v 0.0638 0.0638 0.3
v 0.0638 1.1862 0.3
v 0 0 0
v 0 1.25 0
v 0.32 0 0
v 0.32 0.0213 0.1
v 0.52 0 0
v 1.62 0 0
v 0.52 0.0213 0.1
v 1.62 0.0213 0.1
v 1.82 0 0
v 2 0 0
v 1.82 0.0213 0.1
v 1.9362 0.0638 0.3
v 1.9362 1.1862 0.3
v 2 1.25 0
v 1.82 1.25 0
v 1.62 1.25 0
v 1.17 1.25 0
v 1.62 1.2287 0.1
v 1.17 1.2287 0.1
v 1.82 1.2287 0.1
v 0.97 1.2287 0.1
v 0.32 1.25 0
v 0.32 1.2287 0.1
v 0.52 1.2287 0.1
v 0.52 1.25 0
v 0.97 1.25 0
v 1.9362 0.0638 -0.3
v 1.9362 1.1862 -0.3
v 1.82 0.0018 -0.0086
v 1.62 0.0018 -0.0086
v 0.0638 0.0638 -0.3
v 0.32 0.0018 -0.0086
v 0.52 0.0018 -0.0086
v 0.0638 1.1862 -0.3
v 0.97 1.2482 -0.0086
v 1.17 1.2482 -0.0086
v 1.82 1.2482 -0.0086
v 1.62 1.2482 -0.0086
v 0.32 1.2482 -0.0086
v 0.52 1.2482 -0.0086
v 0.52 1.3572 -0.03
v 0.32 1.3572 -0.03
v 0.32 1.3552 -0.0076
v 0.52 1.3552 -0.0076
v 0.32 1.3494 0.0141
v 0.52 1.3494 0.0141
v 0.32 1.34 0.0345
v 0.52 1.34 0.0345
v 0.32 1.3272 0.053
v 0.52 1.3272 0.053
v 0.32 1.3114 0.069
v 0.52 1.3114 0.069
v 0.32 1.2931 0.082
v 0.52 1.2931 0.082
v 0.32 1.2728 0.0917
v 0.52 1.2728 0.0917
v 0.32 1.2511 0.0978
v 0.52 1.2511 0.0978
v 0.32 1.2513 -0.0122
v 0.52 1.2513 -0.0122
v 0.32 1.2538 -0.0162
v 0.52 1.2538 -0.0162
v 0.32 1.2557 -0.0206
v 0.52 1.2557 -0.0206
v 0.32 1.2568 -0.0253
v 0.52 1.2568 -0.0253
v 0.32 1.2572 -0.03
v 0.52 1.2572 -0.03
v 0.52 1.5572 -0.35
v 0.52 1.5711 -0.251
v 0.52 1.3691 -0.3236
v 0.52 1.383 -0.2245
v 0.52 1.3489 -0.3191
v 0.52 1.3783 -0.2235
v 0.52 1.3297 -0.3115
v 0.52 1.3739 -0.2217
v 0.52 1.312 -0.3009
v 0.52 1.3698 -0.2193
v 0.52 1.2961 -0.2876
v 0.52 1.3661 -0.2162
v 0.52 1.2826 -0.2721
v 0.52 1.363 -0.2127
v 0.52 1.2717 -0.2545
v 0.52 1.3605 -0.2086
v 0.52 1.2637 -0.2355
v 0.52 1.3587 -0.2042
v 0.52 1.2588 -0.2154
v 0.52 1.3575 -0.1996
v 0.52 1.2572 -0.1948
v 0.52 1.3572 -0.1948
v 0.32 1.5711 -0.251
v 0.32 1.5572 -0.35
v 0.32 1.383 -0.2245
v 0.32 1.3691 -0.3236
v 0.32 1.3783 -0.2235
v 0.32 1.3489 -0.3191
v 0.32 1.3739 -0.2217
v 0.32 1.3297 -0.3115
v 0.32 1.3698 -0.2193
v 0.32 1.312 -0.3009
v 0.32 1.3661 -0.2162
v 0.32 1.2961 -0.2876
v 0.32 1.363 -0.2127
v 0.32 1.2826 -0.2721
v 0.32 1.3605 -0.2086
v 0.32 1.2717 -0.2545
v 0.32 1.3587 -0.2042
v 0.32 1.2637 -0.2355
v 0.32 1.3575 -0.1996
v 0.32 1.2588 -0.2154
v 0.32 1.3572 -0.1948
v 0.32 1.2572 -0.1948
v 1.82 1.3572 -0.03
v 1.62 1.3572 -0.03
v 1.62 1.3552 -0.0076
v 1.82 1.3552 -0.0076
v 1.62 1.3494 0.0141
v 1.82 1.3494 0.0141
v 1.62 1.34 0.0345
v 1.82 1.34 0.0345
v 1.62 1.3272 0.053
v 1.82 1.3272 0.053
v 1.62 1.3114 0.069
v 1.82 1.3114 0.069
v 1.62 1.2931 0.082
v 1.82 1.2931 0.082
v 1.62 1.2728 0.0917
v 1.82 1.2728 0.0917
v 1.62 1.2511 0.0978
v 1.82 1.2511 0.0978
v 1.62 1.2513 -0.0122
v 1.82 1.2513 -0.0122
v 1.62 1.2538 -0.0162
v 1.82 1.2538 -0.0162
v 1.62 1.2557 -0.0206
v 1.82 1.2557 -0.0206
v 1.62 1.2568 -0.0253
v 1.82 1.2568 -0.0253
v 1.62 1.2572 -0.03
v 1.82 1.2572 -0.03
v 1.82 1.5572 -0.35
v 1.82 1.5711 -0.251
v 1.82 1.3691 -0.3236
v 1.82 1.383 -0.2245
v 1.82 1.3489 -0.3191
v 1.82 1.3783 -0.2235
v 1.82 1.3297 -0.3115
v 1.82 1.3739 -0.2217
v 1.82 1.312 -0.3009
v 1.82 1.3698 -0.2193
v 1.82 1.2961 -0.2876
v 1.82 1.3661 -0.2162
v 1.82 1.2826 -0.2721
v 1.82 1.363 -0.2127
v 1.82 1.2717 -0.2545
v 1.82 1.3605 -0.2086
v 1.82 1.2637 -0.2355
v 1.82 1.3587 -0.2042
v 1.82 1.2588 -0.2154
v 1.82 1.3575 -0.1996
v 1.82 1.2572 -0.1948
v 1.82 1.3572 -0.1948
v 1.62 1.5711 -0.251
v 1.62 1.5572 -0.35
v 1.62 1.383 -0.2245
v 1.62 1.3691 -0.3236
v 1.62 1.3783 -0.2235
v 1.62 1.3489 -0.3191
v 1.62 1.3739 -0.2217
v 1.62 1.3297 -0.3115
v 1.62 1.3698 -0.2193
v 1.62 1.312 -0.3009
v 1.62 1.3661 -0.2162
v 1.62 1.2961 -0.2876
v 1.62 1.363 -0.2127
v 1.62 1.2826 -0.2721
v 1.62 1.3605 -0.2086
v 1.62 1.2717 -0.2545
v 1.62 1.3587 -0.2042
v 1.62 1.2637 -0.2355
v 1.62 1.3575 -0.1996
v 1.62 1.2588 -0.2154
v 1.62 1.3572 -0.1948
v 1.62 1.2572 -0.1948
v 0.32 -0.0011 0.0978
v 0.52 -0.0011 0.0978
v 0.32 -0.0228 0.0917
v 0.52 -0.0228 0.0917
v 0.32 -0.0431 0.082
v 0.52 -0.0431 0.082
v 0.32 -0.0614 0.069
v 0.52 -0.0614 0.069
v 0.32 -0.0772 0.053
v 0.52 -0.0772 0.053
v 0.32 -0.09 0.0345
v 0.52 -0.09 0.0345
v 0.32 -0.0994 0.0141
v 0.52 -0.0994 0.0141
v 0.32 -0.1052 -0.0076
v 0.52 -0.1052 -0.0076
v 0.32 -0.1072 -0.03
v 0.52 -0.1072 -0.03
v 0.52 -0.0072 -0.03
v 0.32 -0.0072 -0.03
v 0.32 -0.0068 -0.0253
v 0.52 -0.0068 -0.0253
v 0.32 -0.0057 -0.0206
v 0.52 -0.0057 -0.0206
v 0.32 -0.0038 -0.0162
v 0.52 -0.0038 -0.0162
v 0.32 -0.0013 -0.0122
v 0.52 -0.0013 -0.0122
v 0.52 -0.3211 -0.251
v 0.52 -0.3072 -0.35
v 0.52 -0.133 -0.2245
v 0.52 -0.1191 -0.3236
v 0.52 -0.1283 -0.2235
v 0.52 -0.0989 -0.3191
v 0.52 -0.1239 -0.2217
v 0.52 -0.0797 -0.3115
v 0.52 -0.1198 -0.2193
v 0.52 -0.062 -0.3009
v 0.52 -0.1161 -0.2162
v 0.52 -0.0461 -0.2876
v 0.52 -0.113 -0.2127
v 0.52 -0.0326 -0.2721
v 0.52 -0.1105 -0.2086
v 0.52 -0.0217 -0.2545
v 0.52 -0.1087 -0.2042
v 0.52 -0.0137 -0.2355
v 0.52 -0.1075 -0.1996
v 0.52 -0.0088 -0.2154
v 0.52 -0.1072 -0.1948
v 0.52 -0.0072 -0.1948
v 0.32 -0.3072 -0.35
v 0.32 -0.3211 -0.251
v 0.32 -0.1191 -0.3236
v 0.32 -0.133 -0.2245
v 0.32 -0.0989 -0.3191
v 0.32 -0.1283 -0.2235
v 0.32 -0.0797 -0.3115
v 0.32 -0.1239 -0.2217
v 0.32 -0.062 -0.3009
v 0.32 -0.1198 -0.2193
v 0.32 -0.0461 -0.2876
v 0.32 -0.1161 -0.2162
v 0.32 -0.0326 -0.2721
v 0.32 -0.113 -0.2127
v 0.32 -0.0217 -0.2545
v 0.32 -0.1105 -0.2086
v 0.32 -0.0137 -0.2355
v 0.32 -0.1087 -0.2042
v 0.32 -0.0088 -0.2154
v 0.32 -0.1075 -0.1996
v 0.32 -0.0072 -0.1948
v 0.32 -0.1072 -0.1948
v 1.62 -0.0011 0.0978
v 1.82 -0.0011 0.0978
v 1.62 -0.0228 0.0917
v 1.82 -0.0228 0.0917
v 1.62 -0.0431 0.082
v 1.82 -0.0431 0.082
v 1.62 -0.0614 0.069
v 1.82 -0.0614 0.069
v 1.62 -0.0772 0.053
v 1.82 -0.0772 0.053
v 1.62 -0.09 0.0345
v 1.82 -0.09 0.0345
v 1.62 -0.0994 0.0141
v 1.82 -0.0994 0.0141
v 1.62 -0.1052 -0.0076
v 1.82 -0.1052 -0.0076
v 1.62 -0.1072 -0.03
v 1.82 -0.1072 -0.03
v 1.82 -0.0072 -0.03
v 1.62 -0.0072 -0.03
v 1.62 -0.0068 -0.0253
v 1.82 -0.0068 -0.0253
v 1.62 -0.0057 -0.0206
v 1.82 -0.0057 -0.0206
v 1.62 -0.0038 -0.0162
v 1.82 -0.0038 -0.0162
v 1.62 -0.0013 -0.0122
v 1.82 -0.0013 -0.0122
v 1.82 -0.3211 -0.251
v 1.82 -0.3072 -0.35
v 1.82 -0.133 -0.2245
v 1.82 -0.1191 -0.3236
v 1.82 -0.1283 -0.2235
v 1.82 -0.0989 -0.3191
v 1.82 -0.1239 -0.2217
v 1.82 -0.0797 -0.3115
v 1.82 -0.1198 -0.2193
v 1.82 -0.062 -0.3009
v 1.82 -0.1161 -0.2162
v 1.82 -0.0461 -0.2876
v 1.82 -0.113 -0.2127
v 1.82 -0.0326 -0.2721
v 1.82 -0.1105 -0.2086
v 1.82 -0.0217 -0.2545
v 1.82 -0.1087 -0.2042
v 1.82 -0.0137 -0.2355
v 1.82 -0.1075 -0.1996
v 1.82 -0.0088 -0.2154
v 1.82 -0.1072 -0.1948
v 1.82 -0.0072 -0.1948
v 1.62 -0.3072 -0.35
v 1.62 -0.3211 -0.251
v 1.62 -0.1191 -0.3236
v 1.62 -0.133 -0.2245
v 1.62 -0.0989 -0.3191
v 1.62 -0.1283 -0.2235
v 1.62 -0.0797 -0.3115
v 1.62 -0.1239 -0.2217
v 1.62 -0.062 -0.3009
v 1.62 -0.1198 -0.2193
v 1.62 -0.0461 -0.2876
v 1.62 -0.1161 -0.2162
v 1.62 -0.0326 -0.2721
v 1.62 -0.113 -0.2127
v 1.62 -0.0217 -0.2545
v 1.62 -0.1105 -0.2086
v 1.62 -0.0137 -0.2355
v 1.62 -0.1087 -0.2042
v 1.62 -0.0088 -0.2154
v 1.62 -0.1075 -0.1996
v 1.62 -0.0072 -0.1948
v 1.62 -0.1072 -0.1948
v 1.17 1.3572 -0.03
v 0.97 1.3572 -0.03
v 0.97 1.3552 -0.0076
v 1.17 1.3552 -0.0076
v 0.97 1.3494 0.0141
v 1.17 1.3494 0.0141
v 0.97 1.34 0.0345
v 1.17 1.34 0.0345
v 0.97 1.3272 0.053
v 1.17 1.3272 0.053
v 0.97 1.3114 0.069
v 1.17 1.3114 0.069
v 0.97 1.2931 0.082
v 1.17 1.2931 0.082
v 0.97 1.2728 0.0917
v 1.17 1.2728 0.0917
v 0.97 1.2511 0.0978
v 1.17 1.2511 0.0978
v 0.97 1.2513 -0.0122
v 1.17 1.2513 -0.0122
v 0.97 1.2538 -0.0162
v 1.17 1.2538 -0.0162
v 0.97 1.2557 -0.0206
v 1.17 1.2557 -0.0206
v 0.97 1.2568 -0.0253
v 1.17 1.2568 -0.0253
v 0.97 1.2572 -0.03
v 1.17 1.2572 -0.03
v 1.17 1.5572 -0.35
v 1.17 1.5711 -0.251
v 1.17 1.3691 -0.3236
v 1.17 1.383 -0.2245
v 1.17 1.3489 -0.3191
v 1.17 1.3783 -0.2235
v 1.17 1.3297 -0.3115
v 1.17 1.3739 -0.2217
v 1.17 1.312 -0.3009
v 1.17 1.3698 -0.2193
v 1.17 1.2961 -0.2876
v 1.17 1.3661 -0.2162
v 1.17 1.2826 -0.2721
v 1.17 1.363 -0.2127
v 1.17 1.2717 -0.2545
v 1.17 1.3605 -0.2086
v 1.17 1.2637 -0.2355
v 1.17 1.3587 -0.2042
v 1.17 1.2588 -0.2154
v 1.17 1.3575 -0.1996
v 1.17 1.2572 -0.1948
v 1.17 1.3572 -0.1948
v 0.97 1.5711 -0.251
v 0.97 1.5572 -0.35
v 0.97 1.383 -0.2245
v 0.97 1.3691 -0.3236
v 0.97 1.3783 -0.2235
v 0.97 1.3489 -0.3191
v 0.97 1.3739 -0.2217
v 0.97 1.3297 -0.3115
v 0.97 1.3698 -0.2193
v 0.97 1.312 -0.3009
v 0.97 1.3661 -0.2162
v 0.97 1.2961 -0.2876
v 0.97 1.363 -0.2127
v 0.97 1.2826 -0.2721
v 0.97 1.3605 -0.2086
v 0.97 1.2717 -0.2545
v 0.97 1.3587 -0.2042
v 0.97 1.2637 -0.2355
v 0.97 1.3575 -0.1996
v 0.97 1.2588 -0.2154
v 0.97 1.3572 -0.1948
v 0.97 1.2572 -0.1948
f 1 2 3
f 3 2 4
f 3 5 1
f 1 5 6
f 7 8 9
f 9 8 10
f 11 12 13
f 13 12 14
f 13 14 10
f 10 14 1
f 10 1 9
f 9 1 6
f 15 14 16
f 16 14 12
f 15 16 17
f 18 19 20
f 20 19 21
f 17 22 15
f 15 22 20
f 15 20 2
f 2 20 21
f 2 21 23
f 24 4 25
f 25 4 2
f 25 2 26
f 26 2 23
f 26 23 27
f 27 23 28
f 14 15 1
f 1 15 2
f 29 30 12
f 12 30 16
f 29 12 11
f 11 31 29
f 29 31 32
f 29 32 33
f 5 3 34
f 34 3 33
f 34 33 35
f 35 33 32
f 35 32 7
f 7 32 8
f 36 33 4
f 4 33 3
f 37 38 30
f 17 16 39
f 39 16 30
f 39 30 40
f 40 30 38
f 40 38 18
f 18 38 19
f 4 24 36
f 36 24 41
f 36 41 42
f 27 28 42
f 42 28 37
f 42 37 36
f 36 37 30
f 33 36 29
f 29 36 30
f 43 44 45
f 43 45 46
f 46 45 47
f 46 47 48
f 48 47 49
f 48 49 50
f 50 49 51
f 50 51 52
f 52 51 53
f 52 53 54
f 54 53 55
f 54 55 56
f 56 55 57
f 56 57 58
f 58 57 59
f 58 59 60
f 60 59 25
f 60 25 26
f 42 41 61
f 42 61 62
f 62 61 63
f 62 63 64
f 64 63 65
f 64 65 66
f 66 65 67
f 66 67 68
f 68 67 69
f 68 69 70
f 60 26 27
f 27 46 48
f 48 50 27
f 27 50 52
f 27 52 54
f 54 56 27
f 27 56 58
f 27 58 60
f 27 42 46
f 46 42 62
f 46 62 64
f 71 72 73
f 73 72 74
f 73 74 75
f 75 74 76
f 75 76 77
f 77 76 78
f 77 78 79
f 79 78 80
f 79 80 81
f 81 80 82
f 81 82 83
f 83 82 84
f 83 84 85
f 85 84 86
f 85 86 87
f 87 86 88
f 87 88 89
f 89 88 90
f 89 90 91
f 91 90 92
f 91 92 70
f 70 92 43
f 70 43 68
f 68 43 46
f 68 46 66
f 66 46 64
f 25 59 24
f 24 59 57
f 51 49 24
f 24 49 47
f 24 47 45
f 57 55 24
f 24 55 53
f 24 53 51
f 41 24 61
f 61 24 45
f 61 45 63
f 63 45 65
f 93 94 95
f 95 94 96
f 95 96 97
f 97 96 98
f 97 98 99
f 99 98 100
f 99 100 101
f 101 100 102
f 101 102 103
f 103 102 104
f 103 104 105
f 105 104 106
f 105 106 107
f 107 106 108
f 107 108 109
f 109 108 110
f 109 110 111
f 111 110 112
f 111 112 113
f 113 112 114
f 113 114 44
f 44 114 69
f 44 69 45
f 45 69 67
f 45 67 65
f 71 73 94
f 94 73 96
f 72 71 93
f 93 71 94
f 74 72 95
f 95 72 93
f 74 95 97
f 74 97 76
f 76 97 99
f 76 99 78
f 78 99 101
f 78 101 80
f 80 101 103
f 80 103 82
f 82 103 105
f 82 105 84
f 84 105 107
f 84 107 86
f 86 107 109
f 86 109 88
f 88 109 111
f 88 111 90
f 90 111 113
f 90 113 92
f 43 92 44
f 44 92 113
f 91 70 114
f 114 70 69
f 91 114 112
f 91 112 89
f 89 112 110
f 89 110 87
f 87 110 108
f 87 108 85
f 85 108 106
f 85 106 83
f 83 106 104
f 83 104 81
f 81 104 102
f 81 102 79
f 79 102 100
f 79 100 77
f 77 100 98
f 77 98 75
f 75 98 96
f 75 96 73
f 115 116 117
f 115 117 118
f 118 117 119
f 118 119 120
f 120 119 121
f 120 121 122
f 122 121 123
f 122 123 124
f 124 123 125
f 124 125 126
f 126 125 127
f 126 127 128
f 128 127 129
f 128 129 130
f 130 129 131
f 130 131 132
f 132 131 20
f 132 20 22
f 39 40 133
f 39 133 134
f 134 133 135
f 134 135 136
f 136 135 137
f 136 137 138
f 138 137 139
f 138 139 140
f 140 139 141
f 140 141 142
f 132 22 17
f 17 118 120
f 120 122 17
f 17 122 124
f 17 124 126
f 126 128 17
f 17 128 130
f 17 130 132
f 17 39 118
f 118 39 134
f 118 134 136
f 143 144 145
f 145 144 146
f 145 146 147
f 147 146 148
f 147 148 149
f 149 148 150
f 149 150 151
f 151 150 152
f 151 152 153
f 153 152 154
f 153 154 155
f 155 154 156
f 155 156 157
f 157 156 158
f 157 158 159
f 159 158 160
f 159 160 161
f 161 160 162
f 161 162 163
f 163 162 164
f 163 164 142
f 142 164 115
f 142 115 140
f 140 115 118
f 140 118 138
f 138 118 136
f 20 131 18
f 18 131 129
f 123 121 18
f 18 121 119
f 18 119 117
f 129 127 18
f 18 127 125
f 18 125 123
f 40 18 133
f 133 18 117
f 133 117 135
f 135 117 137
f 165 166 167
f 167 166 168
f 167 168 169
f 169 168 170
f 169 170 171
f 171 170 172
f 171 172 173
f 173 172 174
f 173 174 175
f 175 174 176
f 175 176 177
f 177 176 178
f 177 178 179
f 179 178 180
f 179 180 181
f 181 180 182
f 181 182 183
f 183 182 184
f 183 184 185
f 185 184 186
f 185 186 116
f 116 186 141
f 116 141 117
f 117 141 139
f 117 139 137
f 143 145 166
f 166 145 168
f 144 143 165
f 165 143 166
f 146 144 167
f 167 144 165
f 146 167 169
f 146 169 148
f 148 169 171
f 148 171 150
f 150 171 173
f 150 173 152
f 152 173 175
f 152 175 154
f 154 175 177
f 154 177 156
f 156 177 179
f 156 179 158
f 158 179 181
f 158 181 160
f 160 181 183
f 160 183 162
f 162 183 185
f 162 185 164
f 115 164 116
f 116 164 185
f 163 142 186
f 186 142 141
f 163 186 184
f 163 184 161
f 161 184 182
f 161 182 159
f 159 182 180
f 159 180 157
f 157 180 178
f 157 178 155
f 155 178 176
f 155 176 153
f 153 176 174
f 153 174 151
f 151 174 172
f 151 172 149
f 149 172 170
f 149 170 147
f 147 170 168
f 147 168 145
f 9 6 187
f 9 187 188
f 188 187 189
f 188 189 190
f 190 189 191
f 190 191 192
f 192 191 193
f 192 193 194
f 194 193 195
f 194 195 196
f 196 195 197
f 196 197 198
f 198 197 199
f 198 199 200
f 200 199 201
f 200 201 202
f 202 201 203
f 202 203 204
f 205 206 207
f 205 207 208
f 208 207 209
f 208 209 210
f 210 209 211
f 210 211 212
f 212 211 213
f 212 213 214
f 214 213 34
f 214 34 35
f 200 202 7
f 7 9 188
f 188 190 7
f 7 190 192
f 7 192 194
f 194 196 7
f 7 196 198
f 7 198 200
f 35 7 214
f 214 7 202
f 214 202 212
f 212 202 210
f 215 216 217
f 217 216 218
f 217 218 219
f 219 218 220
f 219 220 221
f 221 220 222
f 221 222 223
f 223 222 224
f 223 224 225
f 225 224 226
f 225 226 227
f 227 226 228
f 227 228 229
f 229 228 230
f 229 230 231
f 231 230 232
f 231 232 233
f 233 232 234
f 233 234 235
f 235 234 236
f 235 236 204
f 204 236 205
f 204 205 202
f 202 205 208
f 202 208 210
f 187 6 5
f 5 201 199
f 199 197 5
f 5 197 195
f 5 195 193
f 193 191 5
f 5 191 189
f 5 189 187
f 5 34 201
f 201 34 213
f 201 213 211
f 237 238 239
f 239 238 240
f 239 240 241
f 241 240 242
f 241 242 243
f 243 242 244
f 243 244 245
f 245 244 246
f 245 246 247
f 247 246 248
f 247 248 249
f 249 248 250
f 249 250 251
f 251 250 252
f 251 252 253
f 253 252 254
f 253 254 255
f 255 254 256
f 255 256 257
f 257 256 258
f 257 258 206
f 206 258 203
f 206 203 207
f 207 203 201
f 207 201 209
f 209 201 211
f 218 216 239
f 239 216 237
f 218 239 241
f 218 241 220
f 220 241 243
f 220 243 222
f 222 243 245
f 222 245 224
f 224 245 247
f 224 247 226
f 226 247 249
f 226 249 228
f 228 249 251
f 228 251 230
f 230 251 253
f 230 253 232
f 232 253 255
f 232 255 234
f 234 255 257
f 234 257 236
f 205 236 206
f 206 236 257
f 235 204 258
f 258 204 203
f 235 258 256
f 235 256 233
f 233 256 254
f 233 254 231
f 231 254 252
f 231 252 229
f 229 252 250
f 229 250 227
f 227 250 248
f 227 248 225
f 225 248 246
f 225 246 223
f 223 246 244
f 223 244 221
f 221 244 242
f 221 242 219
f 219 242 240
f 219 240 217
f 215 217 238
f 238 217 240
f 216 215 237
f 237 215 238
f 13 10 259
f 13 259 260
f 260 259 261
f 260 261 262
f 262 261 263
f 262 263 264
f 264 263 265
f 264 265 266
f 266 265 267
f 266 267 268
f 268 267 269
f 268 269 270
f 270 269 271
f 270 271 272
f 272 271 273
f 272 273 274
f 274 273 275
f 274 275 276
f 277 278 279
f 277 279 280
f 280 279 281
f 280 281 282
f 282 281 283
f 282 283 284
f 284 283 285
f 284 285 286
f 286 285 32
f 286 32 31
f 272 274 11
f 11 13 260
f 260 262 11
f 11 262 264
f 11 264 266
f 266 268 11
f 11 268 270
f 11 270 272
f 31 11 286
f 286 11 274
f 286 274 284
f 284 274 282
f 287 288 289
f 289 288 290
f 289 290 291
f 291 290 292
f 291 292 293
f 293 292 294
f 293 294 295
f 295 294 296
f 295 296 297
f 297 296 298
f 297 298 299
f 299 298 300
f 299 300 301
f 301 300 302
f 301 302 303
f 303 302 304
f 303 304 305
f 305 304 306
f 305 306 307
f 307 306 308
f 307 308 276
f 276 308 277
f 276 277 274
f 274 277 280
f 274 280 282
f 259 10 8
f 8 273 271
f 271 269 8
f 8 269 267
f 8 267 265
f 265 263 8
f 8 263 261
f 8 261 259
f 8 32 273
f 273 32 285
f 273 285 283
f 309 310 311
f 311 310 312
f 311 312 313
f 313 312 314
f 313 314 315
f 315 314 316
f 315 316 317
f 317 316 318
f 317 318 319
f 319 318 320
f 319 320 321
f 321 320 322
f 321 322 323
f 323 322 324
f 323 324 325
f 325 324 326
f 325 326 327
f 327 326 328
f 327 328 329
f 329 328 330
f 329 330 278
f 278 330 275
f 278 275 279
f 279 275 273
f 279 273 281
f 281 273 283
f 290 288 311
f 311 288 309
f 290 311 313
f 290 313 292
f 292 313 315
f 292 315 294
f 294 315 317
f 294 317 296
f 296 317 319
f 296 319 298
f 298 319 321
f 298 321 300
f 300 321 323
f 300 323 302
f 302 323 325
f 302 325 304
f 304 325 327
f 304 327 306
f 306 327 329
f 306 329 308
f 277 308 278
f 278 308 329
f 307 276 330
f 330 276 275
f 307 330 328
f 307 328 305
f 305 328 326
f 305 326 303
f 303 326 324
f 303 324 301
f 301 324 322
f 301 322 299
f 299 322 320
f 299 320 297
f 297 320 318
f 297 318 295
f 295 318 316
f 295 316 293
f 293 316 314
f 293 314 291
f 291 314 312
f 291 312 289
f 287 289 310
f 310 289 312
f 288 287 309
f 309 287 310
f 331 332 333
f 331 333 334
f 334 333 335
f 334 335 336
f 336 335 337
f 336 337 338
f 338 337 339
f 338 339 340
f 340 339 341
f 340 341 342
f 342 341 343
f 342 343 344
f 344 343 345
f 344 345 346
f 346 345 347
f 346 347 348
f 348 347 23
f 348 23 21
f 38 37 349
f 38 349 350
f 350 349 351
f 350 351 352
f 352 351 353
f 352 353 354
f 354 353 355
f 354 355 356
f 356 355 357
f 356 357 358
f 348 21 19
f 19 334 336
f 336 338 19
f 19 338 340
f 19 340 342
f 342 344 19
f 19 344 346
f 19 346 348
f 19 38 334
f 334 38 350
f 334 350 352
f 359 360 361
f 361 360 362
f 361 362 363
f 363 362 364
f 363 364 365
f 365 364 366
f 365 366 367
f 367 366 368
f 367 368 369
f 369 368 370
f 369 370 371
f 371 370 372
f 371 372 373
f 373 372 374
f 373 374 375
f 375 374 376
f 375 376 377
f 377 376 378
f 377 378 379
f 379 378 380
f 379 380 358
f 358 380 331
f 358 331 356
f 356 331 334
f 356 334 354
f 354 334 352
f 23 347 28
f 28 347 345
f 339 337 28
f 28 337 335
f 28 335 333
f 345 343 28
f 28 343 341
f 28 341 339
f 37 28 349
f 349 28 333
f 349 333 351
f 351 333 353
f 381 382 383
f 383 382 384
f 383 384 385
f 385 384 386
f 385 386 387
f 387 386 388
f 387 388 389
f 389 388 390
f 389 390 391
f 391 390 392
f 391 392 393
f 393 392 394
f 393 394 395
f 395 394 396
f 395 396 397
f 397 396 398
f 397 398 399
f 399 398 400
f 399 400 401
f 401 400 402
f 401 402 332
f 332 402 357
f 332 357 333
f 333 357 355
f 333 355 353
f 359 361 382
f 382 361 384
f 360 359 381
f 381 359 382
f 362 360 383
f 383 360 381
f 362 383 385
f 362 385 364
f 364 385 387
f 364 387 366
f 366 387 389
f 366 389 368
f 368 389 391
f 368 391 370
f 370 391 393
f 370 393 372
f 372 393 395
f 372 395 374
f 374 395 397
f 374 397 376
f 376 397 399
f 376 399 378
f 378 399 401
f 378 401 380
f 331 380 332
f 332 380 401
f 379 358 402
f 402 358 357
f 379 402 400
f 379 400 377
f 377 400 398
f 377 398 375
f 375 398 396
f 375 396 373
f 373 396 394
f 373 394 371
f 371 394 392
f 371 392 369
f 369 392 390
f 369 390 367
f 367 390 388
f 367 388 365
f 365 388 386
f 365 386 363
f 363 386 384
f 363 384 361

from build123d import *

# Parameters (mm, degrees)
SKETCH1_W            = 2
SKETCH1_H            = 1.25
BOSS_EXTRUDE1_DEPTH  = 0.3
BOSS_EXTRUDE1_TAPER  = 12
SKETCH2_W            = 2
SKETCH2_H            = 1.25
BOSS_EXTRUDE2_DEPTH  = 0.3
BOSS_EXTRUDE2_TAPER  = 12
EXTRUDE_THIN1_DEPTH  = 0.1
LPATTERN1_COUNT      = 3
LPATTERN1_PITCH      = 0.65
MIRROR1_COPY_1_DEPTH = 0.1
LPATTERN2_COUNT      = 2
LPATTERN2_PITCH      = 0.65


with BuildPart() as part:
    # Sketch1 → Boss-Extrude1 (new body)
    with BuildSketch(Plane.XY):
        with Locations((1, 0.625)):
            Rectangle(SKETCH1_W, SKETCH1_H)
    extrude(amount=BOSS_EXTRUDE1_DEPTH, taper=BOSS_EXTRUDE1_TAPER)

    # Sketch2 → Boss-Extrude2 (add)
    with BuildSketch(Plane(origin=(0, 0, 0), x_dir=(-1, 0, 0), z_dir=(0, 0, -1))):
        with Locations((-1, 0.625)):
            Rectangle(SKETCH2_W, SKETCH2_H)
    extrude(amount=BOSS_EXTRUDE2_DEPTH, taper=BOSS_EXTRUDE2_TAPER)

    # Sketch4 → Extrude-Thin1 (add, symmetric)
    with BuildSketch(Plane(origin=(0.42, 0, 0), x_dir=(0, 0, -1), z_dir=(1, 0, 0))):
        with BuildLine():
            Line((0, 1.218116516), (0, 1.227154368))
            ThreePointArc((0, 1.227154368), (0.008786797, 1.248367571), (0.03, 1.257154368))
            Line((0.03, 1.257154368), (0.194830474, 1.257154368))
            ThreePointArc((0.194830474, 1.257154368), (0.280118147, 1.289042122), (0.323565323, 1.369061865))
            Line((0.323565323, 1.369061865), (0.35, 1.557154368))
            Line((0.35, 1.557154368), (0.250973193, 1.571071678))
            Line((0.250973193, 1.571071678), (0.224538516, 1.382979175))
            ThreePointArc((0.224538516, 1.382979175), (0.214512245, 1.36451308), (0.194830474, 1.357154368))
            Line((0.194830474, 1.357154368), (0.03, 1.357154368))
            ThreePointArc((0.03, 1.357154368), (-0.061923882, 1.319078249), (-0.1, 1.227154368))
            Line((-0.1, 1.227154368), (-0.1, 1.218116516))
            Line((-0.1, 1.218116516), (0, 1.218116516))
        make_face()
    extrude_thin1 = extrude(amount=EXTRUDE_THIN1_DEPTH, both=True)

    # LPattern1: Extrude-Thin1 ×3, 1 skipped
    with Locations(*[(i * LPATTERN1_PITCH, 0, 0) for i in range(1, LPATTERN1_COUNT) if i not in (1,)]):
        add(extrude_thin1)

    # Mirror1: Extrude-Thin1 across plane
    add(extrude_thin1.mirror(Plane.ZX.offset(0.625)))

    # Mirror1 copy 1 sketch → Mirror1 copy 1 (add, symmetric)
    with BuildSketch(Plane(origin=(1.72, 1.25, 0), x_dir=(0, 0, -1), z_dir=(1, 0, 0))):
        with BuildLine():
            Line((0, -1.218116516), (0, -1.227154368))
            ThreePointArc((0, -1.227154368), (0.008786797, -1.248367571), (0.03, -1.257154368))
            Line((0.03, -1.257154368), (0.194830474, -1.257154368))
            ThreePointArc((0.194830474, -1.257154368), (0.280118147, -1.289042122), (0.323565323, -1.369061865))
            Line((0.323565323, -1.369061865), (0.35, -1.557154368))
            Line((0.35, -1.557154368), (0.250973193, -1.571071678))
            Line((0.250973193, -1.571071678), (0.224538516, -1.382979175))
            ThreePointArc((0.224538516, -1.382979175), (0.214512245, -1.36451308), (0.194830474, -1.357154368))
            Line((0.194830474, -1.357154368), (0.03, -1.357154368))
            ThreePointArc((0.03, -1.357154368), (-0.061923882, -1.319078249), (-0.1, -1.227154368))
            Line((-0.1, -1.227154368), (-0.1, -1.218116516))
            Line((-0.1, -1.218116516), (0, -1.218116516))
        make_face()
    extrude(amount=MIRROR1_COPY_1_DEPTH, both=True)

    # LPattern2: Extrude-Thin1 ×2
    with Locations(*[(i * LPATTERN2_PITCH, 0, 0) for i in range(1, LPATTERN2_COUNT)]):
        add(extrude_thin1)


solid = part.part
